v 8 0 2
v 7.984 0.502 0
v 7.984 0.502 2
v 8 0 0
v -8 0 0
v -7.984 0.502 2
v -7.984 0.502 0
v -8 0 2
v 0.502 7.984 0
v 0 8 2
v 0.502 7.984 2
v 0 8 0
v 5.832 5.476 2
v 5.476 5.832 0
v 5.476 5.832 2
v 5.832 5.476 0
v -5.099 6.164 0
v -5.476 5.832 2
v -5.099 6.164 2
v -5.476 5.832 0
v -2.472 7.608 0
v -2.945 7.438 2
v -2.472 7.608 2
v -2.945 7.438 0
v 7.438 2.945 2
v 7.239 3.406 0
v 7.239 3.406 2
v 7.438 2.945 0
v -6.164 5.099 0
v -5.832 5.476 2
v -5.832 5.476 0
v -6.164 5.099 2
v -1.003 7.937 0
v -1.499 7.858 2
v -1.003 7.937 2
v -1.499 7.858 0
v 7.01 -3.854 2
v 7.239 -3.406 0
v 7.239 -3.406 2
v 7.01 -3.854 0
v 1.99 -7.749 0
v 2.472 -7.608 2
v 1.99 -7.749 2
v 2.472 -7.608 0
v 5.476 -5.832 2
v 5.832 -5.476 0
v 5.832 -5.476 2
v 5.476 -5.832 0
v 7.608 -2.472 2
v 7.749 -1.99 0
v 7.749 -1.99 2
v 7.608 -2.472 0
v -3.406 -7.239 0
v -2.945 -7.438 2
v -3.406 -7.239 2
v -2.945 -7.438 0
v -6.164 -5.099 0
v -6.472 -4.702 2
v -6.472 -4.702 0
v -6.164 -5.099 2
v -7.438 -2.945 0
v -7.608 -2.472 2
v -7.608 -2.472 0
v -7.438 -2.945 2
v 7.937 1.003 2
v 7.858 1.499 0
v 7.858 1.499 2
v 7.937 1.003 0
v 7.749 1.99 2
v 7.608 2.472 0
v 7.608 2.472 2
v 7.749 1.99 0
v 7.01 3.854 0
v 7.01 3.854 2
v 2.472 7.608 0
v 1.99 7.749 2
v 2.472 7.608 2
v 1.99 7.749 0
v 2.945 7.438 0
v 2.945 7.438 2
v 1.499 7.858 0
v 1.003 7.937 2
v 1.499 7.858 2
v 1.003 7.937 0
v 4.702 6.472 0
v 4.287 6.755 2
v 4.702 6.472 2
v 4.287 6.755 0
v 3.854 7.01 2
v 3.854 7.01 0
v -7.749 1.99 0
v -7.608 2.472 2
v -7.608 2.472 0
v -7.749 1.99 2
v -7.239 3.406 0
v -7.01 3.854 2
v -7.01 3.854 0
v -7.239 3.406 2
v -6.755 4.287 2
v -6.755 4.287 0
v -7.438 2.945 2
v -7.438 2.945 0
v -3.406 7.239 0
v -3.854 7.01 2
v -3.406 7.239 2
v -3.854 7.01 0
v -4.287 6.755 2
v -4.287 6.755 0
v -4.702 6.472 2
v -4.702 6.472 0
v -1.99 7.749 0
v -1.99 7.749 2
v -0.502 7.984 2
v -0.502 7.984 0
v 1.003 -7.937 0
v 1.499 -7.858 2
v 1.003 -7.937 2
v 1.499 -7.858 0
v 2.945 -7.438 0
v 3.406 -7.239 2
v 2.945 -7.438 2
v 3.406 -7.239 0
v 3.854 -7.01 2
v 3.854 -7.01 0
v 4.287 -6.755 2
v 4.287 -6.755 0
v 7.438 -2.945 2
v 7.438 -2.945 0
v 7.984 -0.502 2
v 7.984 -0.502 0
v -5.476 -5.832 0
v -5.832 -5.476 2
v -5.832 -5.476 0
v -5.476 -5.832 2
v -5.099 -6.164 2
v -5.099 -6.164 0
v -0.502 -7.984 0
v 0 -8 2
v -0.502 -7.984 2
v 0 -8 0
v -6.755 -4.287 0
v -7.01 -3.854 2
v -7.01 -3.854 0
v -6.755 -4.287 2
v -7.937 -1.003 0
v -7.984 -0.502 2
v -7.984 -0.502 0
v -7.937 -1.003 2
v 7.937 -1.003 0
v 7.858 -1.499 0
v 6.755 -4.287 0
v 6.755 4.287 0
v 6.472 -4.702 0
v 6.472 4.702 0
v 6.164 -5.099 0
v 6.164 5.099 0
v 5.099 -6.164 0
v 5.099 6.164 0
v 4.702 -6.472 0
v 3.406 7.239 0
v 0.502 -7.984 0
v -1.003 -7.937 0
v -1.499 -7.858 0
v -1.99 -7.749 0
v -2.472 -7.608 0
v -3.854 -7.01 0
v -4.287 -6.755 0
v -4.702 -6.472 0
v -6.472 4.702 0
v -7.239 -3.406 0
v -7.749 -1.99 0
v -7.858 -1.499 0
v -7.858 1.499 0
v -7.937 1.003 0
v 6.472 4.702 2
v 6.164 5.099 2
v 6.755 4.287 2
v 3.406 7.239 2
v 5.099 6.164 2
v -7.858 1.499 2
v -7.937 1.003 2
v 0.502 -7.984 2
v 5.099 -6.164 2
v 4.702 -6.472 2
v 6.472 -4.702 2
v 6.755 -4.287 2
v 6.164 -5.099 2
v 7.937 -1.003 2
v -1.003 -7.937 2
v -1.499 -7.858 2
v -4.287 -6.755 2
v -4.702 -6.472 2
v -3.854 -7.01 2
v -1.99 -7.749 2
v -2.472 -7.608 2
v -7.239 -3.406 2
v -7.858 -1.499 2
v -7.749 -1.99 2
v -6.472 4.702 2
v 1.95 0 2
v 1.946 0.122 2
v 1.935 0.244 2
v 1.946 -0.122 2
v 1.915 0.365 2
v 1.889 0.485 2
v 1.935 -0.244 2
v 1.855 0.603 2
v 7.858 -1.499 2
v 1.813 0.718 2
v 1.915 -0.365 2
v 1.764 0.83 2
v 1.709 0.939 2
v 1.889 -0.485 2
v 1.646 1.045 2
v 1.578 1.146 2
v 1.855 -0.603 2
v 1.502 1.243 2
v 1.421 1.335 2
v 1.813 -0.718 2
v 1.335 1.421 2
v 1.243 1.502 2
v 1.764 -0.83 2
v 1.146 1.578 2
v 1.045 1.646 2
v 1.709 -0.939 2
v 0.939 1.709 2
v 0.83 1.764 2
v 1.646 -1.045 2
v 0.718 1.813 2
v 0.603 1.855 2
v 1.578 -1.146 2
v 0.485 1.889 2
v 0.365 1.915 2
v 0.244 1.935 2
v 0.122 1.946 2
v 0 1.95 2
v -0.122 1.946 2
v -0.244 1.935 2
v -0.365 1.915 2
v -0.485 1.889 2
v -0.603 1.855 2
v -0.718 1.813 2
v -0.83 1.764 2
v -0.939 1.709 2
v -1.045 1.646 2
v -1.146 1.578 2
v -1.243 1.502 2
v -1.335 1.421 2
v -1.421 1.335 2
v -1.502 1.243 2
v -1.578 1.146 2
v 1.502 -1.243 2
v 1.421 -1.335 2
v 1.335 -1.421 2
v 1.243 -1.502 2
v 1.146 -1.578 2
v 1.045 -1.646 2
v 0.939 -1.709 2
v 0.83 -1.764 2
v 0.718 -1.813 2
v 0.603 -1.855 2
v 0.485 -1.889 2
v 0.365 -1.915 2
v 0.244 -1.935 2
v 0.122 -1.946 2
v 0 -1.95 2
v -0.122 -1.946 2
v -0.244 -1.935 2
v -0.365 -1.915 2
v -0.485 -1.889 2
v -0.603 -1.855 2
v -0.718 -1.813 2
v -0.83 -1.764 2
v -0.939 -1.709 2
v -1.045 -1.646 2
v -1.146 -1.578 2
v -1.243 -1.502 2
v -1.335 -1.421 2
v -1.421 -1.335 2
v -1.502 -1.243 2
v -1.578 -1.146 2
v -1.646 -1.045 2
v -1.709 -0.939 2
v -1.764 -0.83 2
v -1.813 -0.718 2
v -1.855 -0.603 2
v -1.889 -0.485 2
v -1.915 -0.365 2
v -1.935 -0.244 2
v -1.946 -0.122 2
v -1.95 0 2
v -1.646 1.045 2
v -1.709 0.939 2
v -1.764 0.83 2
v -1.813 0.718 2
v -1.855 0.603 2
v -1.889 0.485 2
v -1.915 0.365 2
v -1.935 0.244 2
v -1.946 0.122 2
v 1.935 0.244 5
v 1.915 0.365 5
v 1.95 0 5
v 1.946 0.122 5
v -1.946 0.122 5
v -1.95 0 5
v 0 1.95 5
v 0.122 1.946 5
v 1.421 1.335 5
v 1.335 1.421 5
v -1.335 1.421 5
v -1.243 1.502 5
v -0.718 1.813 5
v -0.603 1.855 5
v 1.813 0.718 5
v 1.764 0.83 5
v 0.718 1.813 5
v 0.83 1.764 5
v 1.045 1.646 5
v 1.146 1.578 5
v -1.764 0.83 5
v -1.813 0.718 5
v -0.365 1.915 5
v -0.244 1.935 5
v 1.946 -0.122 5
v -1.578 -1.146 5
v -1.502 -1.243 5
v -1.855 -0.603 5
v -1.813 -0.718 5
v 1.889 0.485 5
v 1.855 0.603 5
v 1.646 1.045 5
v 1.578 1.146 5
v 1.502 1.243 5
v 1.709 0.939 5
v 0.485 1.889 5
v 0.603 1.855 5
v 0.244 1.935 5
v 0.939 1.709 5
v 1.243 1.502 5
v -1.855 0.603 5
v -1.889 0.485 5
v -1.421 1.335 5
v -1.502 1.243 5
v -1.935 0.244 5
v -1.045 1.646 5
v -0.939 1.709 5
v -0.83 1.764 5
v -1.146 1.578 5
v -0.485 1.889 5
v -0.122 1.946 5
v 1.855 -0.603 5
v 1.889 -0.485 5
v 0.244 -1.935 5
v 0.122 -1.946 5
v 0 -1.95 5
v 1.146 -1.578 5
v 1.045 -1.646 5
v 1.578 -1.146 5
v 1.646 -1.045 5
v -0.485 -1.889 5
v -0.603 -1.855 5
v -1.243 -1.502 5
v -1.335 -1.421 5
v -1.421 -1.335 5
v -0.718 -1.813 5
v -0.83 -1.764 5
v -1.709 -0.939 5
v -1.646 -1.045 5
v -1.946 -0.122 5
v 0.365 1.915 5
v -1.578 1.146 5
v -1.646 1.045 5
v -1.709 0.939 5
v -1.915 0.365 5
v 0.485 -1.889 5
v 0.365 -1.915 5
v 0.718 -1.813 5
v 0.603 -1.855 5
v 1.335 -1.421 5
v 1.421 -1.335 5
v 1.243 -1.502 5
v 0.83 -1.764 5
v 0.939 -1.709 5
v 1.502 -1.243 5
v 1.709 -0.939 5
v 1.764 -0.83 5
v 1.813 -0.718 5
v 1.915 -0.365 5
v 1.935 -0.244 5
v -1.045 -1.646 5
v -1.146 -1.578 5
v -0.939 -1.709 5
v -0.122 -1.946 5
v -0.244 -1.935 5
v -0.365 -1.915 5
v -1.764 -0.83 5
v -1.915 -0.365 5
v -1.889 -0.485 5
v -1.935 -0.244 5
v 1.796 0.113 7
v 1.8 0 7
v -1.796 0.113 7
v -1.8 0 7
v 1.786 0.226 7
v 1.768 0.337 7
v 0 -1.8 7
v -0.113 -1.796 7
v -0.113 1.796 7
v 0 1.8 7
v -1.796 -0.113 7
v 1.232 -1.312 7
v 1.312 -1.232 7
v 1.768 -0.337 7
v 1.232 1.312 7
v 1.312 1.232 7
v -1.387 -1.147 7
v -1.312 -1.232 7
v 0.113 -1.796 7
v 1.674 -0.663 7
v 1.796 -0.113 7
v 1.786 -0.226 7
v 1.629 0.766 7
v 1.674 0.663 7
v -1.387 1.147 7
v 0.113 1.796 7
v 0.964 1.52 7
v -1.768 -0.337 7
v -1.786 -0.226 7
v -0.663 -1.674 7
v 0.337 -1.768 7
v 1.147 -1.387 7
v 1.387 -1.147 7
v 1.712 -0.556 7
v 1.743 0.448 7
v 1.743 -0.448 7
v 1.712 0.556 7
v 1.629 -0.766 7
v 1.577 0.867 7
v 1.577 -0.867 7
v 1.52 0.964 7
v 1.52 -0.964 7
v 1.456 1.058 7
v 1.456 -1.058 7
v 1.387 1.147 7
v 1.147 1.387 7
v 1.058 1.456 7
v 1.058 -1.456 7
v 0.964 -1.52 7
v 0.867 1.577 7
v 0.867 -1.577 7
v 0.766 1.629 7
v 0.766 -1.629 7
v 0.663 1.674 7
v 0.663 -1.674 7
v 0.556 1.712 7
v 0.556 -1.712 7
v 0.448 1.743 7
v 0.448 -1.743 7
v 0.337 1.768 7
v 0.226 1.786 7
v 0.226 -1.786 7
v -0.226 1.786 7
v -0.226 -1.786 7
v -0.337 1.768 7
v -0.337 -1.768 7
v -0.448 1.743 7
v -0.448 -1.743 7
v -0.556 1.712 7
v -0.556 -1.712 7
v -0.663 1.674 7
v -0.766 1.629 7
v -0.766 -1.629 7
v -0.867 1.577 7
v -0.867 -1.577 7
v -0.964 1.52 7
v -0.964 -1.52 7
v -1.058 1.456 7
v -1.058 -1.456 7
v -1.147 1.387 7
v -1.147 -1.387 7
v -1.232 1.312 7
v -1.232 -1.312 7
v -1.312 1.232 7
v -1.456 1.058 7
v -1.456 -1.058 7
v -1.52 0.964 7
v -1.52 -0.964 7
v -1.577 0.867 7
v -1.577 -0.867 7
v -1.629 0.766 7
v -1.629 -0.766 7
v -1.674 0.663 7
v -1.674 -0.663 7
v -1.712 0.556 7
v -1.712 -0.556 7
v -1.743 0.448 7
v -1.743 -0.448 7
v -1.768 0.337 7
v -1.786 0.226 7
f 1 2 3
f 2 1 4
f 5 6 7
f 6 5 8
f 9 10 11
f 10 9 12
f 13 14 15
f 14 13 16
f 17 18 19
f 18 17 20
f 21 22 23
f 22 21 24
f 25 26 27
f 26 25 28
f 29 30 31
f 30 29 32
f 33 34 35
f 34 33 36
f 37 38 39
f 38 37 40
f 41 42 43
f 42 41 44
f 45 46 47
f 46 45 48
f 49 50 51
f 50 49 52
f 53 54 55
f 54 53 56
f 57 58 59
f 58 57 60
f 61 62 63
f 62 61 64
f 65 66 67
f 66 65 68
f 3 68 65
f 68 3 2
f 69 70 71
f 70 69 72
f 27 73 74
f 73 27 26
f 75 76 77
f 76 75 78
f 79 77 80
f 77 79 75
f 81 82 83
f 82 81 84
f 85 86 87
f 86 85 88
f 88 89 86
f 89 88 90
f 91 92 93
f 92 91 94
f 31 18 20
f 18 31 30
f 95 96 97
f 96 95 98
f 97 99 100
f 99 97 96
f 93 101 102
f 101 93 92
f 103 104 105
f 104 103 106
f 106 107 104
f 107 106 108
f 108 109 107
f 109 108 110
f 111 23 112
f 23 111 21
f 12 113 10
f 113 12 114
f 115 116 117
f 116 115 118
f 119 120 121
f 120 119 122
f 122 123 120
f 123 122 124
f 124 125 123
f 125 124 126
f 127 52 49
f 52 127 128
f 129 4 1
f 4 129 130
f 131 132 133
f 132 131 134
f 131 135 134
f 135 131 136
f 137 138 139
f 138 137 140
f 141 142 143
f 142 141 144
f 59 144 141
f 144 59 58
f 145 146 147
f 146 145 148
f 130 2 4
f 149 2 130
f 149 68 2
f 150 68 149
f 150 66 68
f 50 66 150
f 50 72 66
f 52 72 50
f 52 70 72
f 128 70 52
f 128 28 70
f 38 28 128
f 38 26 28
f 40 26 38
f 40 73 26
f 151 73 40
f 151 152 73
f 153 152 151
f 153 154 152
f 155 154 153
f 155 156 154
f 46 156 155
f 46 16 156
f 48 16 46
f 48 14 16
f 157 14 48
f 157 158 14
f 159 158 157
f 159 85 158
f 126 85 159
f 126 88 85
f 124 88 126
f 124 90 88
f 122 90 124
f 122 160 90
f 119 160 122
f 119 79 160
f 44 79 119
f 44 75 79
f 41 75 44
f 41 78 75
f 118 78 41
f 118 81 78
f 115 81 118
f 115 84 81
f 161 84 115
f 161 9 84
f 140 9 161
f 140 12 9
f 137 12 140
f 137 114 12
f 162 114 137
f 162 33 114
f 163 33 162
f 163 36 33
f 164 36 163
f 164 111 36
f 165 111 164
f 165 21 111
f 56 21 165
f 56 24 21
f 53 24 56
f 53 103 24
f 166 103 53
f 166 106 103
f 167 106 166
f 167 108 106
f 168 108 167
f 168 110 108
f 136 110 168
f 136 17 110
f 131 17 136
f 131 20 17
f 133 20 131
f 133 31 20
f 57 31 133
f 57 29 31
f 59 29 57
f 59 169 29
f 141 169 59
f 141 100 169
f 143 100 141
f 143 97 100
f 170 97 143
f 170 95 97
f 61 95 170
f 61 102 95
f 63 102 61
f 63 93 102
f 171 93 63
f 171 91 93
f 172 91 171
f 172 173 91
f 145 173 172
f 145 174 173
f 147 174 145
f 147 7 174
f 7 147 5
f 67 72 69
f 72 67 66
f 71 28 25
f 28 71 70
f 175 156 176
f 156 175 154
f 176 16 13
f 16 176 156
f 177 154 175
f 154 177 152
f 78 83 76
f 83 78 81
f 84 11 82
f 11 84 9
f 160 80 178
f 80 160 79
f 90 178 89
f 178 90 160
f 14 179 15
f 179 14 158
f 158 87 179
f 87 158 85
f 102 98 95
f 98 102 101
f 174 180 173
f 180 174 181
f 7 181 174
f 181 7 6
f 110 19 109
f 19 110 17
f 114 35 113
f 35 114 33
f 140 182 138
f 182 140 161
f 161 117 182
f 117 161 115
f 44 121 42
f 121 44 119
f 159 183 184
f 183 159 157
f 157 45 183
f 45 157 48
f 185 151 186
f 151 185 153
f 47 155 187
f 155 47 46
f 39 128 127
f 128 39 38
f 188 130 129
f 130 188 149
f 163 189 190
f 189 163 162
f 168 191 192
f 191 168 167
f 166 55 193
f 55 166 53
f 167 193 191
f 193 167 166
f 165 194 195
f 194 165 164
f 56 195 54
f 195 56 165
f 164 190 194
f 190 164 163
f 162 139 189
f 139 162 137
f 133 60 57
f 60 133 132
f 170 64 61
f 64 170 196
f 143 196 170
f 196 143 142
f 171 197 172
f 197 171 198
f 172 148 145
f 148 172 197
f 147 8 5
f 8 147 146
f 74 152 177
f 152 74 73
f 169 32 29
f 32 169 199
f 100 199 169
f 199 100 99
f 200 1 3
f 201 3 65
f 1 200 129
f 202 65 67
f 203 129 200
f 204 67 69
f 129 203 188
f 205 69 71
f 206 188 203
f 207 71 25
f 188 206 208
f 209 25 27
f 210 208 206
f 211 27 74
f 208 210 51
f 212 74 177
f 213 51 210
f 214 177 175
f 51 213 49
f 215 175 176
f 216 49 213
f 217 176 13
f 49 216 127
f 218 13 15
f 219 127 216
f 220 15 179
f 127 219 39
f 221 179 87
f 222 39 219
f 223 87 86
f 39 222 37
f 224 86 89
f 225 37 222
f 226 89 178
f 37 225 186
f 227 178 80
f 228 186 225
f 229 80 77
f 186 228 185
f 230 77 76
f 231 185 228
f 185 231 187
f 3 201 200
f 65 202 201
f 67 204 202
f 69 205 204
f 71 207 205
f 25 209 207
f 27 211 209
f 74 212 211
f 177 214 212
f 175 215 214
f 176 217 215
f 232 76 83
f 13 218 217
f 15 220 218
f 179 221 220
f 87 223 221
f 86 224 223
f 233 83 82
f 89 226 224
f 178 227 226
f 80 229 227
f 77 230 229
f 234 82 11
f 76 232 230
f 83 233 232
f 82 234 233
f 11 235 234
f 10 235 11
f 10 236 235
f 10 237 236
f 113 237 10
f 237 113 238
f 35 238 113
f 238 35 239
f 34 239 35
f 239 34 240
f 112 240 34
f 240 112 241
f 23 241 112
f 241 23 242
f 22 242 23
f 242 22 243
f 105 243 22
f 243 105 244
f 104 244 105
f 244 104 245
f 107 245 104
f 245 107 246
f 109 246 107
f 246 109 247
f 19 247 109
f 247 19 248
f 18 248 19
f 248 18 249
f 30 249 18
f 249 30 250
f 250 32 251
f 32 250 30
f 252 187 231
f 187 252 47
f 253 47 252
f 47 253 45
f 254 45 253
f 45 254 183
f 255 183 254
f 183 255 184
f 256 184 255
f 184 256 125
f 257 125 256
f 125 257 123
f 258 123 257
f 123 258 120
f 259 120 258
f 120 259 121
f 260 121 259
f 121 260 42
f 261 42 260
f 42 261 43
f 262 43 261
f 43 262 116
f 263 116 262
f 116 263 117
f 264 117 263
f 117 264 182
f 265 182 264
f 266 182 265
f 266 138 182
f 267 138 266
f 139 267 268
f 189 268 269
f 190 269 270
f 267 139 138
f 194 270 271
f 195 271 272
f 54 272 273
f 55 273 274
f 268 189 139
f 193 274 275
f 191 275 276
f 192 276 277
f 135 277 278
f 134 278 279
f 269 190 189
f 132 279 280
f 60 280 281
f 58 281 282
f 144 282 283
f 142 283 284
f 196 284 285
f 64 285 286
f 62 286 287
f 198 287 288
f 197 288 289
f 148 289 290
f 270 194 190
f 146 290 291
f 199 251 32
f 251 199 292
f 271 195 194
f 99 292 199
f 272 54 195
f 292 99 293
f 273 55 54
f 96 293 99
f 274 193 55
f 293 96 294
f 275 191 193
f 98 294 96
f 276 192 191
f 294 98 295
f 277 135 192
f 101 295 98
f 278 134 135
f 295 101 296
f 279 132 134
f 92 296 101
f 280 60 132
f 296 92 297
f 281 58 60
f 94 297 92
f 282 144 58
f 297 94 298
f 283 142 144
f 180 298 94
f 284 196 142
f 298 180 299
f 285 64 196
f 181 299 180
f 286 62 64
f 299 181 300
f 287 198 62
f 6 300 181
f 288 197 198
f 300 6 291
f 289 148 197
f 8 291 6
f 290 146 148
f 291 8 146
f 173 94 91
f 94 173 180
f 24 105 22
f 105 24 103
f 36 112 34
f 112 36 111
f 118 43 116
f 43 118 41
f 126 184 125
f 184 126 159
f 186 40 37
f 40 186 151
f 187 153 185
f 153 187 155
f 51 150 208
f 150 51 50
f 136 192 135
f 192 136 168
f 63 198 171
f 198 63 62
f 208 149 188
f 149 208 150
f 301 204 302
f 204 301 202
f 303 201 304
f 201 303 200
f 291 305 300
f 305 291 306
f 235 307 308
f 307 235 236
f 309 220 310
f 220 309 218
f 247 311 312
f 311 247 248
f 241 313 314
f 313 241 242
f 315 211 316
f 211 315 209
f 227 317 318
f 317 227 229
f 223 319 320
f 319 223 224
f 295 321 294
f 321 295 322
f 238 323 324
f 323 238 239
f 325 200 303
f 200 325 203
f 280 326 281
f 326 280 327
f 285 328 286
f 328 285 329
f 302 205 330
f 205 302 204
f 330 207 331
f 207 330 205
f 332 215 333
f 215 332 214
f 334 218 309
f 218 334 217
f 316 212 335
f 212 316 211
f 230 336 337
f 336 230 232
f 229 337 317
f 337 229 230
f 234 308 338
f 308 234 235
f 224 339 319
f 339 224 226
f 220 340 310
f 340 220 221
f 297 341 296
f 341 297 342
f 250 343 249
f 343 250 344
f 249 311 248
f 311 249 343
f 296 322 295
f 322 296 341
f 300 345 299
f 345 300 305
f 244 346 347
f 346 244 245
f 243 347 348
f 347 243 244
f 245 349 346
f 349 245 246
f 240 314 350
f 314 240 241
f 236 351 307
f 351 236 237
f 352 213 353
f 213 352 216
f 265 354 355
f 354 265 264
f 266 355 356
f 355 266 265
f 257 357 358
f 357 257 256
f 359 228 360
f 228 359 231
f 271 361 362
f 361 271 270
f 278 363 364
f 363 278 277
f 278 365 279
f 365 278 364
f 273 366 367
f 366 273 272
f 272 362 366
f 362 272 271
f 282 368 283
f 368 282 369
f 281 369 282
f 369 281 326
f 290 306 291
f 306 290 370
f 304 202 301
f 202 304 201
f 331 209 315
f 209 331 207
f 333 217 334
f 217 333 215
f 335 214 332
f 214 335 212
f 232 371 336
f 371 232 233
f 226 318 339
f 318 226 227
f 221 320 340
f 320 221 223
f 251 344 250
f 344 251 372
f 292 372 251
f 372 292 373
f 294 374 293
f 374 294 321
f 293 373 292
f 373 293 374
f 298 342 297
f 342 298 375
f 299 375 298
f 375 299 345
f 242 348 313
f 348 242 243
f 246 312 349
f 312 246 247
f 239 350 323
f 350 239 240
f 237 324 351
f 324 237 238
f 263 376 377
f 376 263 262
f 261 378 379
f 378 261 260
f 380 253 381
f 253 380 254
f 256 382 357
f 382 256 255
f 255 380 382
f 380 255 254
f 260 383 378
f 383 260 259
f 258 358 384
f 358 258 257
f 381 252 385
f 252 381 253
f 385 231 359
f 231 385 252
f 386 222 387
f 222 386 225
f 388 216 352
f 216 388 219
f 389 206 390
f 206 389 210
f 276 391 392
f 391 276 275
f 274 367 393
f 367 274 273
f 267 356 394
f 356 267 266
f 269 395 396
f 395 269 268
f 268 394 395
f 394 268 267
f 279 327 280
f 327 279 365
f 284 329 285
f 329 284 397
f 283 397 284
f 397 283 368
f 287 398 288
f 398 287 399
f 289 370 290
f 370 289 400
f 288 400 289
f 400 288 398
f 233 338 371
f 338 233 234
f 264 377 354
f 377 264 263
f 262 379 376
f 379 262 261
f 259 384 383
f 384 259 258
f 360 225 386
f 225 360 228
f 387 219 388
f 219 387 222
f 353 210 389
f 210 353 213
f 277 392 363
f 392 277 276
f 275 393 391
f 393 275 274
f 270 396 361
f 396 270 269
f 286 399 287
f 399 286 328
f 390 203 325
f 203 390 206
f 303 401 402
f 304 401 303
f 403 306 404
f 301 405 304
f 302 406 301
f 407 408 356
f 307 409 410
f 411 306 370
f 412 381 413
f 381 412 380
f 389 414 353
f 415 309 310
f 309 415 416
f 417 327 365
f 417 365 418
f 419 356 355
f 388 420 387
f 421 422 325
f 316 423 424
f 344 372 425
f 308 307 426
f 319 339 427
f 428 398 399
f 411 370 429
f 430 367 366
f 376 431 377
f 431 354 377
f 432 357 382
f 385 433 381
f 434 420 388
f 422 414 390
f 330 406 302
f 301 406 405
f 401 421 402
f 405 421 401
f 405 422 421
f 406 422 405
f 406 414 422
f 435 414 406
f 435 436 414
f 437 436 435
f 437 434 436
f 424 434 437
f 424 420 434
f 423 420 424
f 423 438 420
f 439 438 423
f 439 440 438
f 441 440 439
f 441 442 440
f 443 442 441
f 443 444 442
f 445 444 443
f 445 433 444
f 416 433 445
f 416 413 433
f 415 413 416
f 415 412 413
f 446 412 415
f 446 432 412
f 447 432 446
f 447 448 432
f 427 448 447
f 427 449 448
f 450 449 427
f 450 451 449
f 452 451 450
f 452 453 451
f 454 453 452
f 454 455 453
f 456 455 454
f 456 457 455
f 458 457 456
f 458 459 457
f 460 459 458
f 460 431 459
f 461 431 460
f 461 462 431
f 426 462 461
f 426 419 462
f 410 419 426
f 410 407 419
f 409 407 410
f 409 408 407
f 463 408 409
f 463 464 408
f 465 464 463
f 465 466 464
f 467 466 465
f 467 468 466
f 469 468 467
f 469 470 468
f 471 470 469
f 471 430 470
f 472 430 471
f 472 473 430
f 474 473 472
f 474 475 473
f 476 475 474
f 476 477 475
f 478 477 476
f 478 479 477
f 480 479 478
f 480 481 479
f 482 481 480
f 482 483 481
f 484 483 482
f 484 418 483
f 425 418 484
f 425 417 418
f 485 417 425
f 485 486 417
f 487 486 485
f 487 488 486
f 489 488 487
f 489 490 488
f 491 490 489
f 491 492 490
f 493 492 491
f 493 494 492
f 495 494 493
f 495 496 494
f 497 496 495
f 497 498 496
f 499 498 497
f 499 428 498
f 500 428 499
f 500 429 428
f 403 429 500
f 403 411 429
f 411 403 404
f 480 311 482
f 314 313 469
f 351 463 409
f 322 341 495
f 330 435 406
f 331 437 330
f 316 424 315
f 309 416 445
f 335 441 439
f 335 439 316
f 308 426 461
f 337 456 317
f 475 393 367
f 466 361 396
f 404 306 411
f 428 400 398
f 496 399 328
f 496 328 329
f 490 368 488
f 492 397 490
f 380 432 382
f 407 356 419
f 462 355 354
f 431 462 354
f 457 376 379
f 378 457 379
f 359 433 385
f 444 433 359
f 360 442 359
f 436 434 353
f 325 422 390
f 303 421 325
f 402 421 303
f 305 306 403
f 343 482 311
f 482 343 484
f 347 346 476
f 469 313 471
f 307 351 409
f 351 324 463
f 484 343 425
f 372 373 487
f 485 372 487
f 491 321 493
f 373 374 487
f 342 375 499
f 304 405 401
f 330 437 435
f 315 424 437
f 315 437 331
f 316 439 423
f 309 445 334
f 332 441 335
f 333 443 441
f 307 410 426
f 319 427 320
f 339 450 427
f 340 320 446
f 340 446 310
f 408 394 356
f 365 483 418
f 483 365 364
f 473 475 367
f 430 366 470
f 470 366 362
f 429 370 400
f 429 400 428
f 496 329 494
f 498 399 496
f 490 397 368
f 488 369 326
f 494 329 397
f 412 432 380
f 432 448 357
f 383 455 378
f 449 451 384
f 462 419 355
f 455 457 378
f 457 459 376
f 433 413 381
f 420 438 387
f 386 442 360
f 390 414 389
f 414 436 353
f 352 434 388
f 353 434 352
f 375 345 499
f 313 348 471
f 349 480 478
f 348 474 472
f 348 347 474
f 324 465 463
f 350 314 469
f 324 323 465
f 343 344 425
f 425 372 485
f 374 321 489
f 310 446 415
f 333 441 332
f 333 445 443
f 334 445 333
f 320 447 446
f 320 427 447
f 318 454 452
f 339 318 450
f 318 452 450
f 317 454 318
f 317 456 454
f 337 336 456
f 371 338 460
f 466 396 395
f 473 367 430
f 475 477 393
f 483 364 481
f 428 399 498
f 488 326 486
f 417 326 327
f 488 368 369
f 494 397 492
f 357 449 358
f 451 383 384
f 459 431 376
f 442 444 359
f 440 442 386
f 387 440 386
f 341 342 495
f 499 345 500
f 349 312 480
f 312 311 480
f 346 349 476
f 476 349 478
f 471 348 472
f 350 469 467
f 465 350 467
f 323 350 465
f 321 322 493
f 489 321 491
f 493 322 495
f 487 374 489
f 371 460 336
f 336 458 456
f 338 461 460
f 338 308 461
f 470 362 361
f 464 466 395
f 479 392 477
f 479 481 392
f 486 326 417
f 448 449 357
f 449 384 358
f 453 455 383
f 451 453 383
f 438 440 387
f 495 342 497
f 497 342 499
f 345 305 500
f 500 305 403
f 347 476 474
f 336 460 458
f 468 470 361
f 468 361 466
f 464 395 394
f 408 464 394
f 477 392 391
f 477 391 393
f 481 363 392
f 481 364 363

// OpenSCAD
// lock round
$fn=100;
union() {
  cylinder(h=2, r=8);
  cylinder(h=5, r=1.95);
  translate([0,0,5]) cylinder(h=2, r1=1.95, r2=1.8);
}
